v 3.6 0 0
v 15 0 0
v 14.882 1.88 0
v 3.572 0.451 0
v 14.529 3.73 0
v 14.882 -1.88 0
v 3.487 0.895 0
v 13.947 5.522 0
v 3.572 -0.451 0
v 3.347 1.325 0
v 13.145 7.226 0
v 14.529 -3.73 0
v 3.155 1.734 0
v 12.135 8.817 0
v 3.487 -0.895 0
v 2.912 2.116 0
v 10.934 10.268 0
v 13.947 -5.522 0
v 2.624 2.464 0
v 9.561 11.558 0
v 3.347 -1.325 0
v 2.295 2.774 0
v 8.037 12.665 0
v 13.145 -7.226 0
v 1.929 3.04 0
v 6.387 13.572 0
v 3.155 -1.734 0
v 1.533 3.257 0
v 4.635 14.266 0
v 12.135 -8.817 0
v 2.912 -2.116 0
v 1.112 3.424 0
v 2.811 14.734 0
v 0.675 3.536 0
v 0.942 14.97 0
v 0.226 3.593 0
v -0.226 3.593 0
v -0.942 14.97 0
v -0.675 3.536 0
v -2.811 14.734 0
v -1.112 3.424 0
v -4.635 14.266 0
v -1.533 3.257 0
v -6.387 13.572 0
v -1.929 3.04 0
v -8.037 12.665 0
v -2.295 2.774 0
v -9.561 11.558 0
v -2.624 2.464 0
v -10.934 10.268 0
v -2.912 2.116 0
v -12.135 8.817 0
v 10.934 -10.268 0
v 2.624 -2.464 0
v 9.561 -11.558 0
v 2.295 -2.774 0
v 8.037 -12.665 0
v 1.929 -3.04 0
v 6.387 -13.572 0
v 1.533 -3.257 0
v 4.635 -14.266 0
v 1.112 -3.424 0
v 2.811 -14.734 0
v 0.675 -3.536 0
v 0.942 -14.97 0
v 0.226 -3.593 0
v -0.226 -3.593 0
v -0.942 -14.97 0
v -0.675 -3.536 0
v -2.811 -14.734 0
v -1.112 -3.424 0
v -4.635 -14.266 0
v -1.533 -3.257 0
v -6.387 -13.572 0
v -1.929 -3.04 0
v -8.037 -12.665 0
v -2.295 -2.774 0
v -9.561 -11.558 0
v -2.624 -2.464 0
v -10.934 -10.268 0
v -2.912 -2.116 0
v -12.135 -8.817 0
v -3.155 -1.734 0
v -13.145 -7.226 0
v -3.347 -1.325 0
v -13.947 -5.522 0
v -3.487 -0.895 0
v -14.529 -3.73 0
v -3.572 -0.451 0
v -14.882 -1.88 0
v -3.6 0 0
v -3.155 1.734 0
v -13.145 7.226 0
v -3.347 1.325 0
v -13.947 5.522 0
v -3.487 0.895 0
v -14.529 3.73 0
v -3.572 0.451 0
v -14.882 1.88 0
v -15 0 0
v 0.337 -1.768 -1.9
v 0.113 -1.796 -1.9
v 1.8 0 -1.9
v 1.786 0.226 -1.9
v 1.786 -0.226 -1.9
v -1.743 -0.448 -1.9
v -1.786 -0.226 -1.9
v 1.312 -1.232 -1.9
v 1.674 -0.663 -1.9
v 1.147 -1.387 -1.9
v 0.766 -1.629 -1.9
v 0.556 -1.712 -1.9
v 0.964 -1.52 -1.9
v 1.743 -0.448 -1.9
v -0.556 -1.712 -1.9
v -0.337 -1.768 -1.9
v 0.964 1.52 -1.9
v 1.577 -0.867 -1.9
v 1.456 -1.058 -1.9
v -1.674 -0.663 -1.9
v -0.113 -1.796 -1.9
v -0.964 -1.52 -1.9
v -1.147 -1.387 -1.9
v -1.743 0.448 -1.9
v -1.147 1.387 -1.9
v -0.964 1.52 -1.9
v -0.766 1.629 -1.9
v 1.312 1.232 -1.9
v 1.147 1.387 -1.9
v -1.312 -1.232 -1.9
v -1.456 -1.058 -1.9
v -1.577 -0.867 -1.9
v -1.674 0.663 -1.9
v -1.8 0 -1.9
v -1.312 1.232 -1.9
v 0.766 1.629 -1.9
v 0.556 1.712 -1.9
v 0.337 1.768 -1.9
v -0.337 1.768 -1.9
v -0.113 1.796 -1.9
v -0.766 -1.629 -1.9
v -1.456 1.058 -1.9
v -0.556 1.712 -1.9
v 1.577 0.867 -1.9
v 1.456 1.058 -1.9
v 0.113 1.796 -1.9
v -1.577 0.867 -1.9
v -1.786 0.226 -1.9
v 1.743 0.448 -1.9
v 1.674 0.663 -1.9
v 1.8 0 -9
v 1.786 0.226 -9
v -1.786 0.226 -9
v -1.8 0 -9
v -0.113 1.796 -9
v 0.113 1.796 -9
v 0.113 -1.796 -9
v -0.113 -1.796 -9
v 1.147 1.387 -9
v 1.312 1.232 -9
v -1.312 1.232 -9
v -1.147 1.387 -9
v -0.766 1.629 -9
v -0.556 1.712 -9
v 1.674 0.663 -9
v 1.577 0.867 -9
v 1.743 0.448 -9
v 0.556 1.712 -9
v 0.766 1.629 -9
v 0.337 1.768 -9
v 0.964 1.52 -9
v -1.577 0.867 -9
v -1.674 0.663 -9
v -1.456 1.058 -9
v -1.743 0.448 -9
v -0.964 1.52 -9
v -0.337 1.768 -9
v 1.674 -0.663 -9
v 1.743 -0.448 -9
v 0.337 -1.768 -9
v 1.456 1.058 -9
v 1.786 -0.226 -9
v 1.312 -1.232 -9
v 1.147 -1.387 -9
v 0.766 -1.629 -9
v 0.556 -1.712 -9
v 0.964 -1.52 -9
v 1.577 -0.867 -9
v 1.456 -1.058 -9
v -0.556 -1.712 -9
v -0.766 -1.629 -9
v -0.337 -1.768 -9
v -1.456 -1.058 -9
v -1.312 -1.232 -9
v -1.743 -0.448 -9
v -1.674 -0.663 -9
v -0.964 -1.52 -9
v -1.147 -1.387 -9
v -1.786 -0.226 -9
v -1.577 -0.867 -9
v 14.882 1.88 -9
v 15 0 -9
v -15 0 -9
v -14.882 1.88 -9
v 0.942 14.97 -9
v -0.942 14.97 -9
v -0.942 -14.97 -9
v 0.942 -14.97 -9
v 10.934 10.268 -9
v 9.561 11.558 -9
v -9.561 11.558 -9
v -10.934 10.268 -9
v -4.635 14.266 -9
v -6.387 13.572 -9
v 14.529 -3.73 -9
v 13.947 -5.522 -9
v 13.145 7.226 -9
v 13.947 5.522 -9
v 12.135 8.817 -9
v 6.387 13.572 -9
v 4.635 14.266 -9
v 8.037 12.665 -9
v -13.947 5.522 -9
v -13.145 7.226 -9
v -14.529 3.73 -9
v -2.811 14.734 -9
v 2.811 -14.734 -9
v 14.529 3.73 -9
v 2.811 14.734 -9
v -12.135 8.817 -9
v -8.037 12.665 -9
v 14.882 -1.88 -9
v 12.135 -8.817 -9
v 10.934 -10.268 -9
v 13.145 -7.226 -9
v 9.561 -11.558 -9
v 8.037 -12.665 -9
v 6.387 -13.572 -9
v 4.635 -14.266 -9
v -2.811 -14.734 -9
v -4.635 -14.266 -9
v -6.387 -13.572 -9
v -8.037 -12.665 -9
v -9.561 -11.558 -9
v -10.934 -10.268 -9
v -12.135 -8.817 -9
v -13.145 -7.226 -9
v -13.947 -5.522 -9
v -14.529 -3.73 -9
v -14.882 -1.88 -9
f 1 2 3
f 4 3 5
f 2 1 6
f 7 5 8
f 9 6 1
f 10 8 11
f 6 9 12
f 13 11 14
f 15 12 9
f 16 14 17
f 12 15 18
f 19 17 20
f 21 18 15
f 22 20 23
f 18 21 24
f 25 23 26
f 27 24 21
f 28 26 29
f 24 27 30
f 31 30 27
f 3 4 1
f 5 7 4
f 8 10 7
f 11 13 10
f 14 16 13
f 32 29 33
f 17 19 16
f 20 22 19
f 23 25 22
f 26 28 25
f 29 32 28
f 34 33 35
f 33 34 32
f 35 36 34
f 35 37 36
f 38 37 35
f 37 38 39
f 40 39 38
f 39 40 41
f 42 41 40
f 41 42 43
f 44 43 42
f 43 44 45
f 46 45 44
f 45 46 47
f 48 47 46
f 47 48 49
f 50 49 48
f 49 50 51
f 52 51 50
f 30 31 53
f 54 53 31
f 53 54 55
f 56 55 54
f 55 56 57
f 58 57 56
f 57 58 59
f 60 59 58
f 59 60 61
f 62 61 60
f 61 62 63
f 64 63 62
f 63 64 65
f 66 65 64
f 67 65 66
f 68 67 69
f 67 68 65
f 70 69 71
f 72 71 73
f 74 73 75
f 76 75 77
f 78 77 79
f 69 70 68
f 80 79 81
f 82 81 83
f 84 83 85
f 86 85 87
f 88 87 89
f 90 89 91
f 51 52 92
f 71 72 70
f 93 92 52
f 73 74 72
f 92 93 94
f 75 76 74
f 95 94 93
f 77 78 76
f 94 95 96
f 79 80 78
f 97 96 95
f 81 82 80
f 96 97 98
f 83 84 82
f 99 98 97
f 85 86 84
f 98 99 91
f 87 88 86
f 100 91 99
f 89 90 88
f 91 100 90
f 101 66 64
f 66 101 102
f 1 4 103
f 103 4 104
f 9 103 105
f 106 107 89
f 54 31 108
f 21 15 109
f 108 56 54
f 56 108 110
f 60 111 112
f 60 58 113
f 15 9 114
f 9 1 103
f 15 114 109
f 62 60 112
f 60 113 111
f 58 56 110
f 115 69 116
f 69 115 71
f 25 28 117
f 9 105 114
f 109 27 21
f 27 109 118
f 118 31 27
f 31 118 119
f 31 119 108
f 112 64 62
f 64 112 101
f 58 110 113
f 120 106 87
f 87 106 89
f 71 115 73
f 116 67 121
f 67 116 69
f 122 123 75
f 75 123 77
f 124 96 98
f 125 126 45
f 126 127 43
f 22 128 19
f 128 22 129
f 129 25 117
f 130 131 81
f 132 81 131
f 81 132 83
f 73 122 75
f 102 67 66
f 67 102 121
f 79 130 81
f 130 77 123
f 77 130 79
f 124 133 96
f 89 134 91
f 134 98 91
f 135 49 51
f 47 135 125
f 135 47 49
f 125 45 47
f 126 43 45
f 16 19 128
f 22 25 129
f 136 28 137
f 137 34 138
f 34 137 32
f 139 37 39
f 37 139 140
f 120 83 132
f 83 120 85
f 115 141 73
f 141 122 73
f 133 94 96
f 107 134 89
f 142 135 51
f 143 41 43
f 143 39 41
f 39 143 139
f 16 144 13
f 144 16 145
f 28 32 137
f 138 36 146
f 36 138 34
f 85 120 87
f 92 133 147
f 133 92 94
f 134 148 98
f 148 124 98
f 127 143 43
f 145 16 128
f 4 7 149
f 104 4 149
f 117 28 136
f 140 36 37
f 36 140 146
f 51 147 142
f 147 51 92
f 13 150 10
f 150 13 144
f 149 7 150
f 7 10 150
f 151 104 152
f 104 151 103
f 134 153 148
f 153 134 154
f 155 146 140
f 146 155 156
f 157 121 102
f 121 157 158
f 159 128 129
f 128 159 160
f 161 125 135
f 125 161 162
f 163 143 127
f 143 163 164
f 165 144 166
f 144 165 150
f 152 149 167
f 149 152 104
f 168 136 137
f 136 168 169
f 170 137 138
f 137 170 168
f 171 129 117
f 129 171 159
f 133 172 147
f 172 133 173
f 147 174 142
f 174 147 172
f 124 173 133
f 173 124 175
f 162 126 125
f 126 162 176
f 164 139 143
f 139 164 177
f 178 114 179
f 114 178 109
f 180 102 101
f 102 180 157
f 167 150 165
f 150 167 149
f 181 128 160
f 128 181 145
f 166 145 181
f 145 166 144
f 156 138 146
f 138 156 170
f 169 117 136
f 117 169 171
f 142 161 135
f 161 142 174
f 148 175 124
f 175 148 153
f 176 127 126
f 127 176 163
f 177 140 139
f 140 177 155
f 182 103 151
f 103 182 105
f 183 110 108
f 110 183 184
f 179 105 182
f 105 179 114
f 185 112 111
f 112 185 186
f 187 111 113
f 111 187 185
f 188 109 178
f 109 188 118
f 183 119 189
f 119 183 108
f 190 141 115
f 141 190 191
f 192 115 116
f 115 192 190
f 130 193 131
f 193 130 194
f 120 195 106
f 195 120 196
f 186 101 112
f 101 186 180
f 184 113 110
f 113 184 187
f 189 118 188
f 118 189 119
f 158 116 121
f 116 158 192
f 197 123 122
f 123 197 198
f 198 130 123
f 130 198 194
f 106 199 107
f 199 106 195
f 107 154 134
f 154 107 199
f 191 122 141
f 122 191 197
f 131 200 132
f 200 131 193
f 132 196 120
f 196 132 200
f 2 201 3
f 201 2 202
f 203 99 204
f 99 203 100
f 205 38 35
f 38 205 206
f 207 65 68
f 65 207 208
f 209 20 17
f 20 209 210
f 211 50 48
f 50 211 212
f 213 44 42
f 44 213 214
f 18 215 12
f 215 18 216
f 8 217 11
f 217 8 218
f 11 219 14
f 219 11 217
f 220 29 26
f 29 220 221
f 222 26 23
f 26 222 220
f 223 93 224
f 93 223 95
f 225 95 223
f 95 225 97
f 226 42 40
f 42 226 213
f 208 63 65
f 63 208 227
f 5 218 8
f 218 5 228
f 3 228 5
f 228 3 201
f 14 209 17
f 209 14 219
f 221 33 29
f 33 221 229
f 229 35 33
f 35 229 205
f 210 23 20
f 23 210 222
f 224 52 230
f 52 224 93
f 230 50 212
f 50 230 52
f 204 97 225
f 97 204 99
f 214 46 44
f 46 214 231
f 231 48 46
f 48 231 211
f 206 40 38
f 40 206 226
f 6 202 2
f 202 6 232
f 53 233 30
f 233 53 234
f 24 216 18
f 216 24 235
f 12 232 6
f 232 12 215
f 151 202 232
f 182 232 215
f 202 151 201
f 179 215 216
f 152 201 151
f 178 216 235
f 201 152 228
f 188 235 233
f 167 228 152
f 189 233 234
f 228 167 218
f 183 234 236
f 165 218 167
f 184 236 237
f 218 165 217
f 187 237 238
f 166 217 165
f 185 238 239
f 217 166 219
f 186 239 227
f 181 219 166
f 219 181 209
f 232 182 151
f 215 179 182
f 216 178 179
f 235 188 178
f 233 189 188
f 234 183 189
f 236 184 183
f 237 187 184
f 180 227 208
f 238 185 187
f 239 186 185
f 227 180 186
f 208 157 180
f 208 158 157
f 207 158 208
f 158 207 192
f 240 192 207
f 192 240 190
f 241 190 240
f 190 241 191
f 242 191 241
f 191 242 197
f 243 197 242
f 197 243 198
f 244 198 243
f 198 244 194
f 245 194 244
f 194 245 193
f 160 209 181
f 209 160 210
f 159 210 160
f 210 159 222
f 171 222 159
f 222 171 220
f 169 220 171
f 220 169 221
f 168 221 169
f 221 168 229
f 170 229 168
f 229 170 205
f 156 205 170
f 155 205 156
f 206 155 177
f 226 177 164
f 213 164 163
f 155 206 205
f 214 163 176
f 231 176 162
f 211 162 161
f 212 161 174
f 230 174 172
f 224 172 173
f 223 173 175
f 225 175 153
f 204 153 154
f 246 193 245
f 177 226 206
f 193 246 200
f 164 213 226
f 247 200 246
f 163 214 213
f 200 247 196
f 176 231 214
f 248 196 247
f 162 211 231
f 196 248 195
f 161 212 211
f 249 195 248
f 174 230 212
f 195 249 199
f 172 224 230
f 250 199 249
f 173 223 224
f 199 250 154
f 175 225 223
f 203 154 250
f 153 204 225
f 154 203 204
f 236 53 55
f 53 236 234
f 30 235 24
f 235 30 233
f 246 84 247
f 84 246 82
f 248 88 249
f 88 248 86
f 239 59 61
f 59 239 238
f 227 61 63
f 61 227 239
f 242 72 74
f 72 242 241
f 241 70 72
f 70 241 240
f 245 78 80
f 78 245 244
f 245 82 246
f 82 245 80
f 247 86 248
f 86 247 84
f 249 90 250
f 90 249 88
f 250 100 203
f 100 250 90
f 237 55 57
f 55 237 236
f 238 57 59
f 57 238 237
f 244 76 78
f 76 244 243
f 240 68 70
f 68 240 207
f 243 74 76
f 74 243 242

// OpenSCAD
$fn = 50;

difference() {
	union() {
		translate(v = [0, 0, -9.0]) {
			cylinder(h = 9, r = 15.0);
		}
	}
	union() {
		translate(v = [0, 0, 0]) {
			rotate(a = [0, 0, 0]) {
				difference() {
					union() {
						translate(v = [0, 0, -12.0]) {
							cylinder(h = 12, r = 1.5);
						}
						translate(v = [0, 0, -1.9]) {
							cylinder(h = 1.9, r1 = 1.8, r2 = 3.6);
						}
						translate(v = [0, 0, -12.0]) {
							cylinder(h = 12, r = 1.8);
						}
						translate(v = [0, 0, -12.0]) {
							cylinder(h = 12, r = 1.5);
						}
					}
					union();
				}
			}
		}
	}
}
